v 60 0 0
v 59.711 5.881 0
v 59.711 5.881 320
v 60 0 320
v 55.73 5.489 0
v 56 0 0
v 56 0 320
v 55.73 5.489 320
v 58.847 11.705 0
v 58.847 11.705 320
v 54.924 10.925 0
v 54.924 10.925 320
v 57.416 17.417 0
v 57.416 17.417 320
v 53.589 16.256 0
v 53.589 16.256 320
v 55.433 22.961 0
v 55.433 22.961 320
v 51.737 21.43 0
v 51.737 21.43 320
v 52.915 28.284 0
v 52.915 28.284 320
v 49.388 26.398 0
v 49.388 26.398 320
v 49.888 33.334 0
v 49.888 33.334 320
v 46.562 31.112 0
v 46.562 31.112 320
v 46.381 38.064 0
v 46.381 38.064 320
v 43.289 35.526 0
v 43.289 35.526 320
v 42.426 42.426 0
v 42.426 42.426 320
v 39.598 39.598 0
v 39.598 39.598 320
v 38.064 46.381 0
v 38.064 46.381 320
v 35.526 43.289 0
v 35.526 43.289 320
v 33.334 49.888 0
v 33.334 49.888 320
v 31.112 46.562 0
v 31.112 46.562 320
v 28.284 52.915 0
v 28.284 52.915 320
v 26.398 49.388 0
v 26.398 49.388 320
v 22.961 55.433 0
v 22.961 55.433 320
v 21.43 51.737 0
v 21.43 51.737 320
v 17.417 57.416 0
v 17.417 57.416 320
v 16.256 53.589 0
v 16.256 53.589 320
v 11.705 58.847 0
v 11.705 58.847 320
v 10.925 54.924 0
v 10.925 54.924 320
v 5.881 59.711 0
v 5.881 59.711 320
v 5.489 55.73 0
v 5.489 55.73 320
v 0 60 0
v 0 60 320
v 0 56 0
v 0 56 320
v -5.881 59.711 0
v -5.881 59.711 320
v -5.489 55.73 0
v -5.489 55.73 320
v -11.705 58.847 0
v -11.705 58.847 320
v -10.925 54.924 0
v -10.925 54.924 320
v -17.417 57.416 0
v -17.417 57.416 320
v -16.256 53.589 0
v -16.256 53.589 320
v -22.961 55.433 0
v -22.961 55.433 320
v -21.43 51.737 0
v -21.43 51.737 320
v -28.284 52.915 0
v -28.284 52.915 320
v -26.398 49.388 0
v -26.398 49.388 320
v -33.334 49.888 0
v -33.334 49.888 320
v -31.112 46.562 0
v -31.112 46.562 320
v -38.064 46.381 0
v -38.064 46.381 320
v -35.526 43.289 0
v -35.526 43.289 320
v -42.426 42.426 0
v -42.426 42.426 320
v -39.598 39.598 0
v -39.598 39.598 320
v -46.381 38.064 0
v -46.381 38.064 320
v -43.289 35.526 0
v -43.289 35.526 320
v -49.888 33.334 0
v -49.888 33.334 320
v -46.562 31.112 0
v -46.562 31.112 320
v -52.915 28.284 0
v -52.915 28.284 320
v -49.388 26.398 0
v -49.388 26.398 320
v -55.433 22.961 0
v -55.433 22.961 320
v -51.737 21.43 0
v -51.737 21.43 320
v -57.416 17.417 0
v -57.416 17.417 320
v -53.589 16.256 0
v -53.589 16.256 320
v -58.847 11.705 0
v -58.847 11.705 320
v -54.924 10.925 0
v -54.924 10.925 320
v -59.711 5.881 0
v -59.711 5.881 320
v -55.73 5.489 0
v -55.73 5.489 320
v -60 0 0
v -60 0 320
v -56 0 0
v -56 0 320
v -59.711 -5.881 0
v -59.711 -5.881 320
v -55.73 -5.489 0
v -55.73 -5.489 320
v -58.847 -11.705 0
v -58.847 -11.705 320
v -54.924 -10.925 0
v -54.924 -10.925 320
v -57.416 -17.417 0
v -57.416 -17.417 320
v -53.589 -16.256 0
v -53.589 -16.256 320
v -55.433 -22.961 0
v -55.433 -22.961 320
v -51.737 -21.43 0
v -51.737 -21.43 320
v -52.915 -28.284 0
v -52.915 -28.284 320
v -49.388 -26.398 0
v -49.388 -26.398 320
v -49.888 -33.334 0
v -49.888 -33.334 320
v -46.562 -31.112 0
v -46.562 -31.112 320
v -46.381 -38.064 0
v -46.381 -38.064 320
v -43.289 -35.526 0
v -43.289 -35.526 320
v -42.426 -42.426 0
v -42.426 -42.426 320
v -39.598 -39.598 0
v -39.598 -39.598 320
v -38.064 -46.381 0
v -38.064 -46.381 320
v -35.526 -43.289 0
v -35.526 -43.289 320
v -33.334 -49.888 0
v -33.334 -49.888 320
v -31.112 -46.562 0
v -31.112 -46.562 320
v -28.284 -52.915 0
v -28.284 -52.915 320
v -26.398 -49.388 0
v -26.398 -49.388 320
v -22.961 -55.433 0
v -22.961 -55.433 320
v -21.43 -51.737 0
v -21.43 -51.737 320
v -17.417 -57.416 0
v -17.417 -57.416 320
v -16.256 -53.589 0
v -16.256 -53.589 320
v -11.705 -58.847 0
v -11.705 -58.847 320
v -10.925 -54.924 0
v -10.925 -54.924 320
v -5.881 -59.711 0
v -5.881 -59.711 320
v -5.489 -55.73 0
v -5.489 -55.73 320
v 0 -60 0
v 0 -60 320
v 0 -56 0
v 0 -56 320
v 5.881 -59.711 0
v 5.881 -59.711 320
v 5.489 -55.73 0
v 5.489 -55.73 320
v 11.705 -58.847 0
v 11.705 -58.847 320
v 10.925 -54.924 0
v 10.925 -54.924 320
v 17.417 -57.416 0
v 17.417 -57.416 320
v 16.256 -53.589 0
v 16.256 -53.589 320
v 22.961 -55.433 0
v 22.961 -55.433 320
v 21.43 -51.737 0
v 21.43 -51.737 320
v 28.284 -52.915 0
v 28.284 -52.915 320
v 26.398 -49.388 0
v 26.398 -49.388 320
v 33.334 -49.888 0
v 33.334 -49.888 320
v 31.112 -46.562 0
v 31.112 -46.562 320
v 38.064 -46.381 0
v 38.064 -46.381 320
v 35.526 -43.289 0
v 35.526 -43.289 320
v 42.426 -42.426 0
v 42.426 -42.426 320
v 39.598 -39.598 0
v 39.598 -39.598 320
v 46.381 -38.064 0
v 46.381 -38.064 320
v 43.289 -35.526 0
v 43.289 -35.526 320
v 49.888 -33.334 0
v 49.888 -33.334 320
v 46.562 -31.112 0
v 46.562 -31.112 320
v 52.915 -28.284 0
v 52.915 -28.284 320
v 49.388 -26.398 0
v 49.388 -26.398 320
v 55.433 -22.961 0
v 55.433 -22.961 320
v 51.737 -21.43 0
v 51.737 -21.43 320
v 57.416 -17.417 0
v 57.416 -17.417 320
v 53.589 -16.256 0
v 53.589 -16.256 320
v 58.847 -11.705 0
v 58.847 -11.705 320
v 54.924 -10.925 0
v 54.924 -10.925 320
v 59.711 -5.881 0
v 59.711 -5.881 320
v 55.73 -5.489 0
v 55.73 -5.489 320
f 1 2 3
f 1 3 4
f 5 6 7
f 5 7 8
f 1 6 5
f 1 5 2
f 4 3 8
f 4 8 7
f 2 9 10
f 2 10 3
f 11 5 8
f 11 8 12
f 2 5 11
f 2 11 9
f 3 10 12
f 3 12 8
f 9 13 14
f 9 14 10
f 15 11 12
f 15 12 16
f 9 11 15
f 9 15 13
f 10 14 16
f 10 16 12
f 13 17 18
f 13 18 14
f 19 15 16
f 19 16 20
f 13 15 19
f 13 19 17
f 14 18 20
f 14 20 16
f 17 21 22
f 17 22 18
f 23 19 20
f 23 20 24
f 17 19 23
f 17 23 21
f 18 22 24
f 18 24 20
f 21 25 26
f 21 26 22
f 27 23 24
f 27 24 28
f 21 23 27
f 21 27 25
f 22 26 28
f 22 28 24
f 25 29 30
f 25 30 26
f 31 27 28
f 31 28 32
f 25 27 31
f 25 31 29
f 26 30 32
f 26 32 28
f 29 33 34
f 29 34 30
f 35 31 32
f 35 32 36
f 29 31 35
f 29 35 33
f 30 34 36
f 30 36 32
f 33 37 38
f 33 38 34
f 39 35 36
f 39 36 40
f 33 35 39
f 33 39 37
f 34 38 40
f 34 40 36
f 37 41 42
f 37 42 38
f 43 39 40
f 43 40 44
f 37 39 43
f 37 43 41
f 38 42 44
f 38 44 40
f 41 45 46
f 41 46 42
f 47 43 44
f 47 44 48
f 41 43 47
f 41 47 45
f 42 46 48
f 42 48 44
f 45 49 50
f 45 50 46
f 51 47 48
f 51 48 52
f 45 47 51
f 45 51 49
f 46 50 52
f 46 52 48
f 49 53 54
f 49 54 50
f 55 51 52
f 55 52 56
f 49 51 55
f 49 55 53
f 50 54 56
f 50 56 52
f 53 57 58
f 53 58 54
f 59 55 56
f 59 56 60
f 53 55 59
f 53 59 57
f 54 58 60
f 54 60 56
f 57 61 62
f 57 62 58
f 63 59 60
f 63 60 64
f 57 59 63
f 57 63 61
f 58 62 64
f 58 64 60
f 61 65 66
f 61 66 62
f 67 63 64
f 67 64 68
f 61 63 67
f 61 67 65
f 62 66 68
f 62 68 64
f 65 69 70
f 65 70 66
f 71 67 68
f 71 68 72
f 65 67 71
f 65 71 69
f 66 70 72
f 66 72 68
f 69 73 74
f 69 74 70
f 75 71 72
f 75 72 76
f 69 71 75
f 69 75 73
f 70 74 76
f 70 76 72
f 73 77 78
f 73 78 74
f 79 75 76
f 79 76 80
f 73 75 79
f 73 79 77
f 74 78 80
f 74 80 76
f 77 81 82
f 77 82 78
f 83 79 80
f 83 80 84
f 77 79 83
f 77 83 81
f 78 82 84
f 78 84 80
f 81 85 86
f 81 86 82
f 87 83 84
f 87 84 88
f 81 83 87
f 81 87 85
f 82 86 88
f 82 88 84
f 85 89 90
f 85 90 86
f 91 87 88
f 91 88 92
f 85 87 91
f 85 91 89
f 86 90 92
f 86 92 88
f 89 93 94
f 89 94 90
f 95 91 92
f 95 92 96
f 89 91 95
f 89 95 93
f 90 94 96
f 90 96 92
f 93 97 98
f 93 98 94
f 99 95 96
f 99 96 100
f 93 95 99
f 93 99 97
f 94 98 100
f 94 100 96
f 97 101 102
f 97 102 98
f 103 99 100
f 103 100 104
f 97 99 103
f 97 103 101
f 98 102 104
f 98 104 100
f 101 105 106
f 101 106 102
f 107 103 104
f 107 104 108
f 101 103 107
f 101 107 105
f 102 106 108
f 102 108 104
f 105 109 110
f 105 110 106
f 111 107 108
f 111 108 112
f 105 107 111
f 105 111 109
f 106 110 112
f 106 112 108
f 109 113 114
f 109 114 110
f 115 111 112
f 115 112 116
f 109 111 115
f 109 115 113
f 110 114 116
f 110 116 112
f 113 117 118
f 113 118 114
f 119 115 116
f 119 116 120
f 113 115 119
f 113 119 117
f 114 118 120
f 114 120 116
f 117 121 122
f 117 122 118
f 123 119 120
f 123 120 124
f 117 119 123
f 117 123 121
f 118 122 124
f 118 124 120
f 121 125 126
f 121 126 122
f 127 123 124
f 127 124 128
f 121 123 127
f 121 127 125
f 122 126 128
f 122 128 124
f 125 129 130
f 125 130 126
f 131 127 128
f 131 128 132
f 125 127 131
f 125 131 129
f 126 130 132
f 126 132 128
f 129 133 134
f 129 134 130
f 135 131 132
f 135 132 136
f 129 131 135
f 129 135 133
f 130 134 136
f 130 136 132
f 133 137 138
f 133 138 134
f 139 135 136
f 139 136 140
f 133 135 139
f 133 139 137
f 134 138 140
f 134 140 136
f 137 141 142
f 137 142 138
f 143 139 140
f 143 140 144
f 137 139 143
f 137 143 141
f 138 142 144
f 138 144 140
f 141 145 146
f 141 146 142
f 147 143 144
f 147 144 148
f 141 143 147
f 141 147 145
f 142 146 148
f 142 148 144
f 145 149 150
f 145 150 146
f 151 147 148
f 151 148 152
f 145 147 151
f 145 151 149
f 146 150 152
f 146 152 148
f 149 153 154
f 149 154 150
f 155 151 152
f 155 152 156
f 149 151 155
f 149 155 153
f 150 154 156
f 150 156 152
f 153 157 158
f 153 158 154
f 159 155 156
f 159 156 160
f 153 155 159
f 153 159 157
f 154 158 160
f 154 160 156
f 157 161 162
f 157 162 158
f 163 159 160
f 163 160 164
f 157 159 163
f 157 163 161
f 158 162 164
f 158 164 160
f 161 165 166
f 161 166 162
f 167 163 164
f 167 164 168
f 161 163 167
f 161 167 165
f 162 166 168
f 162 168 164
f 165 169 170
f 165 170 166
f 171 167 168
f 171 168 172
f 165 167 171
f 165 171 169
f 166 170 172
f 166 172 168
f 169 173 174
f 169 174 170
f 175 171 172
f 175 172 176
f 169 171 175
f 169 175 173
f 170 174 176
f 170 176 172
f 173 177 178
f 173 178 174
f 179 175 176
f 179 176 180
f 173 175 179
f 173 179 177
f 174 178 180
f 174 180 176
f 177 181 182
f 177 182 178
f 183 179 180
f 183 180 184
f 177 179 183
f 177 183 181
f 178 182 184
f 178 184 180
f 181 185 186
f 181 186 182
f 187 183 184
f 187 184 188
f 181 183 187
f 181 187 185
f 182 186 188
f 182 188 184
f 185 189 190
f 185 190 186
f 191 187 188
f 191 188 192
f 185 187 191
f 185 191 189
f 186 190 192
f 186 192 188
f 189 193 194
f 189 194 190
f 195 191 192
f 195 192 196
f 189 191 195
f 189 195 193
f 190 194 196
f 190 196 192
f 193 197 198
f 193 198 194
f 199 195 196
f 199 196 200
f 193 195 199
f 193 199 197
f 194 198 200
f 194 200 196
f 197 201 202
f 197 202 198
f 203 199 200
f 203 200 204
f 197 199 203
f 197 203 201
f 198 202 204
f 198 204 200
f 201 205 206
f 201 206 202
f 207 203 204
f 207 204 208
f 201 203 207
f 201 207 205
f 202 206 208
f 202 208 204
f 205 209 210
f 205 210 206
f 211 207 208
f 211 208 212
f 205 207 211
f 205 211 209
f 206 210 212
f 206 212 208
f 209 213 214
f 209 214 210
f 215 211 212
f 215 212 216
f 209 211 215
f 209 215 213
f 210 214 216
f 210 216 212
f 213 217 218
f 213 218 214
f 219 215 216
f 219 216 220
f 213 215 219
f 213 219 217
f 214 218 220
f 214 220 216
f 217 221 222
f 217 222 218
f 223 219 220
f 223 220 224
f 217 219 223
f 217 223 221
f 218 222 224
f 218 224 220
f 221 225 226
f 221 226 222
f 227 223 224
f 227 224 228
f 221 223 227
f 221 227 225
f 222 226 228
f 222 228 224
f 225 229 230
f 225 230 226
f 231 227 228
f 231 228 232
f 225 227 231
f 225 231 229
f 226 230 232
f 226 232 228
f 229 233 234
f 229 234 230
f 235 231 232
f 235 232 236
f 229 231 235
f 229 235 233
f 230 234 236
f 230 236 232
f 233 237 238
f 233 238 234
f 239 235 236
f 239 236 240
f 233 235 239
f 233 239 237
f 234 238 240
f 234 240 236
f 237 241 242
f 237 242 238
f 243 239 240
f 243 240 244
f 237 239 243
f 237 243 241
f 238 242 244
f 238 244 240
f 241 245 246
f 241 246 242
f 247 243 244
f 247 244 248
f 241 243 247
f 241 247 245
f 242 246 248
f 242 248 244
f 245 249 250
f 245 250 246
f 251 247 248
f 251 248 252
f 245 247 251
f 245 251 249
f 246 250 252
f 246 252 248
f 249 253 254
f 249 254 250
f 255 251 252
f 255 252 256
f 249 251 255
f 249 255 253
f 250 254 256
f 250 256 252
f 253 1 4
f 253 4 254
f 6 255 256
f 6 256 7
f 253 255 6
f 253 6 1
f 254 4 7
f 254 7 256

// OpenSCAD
// HouseHand torso shell — plate to XLe 035 arm-base.
// Units: mm. F6 render, then export STL to print/xlerobot/hardware/torso_shell.stl
OD = 120;
WALL = 4;
H = 320;
$fn = 64;

difference() {
  cylinder(h = H, d = OD);
  translate([0, 0, -1]) cylinder(h = H + 2, d = OD - 2 * WALL);
}
